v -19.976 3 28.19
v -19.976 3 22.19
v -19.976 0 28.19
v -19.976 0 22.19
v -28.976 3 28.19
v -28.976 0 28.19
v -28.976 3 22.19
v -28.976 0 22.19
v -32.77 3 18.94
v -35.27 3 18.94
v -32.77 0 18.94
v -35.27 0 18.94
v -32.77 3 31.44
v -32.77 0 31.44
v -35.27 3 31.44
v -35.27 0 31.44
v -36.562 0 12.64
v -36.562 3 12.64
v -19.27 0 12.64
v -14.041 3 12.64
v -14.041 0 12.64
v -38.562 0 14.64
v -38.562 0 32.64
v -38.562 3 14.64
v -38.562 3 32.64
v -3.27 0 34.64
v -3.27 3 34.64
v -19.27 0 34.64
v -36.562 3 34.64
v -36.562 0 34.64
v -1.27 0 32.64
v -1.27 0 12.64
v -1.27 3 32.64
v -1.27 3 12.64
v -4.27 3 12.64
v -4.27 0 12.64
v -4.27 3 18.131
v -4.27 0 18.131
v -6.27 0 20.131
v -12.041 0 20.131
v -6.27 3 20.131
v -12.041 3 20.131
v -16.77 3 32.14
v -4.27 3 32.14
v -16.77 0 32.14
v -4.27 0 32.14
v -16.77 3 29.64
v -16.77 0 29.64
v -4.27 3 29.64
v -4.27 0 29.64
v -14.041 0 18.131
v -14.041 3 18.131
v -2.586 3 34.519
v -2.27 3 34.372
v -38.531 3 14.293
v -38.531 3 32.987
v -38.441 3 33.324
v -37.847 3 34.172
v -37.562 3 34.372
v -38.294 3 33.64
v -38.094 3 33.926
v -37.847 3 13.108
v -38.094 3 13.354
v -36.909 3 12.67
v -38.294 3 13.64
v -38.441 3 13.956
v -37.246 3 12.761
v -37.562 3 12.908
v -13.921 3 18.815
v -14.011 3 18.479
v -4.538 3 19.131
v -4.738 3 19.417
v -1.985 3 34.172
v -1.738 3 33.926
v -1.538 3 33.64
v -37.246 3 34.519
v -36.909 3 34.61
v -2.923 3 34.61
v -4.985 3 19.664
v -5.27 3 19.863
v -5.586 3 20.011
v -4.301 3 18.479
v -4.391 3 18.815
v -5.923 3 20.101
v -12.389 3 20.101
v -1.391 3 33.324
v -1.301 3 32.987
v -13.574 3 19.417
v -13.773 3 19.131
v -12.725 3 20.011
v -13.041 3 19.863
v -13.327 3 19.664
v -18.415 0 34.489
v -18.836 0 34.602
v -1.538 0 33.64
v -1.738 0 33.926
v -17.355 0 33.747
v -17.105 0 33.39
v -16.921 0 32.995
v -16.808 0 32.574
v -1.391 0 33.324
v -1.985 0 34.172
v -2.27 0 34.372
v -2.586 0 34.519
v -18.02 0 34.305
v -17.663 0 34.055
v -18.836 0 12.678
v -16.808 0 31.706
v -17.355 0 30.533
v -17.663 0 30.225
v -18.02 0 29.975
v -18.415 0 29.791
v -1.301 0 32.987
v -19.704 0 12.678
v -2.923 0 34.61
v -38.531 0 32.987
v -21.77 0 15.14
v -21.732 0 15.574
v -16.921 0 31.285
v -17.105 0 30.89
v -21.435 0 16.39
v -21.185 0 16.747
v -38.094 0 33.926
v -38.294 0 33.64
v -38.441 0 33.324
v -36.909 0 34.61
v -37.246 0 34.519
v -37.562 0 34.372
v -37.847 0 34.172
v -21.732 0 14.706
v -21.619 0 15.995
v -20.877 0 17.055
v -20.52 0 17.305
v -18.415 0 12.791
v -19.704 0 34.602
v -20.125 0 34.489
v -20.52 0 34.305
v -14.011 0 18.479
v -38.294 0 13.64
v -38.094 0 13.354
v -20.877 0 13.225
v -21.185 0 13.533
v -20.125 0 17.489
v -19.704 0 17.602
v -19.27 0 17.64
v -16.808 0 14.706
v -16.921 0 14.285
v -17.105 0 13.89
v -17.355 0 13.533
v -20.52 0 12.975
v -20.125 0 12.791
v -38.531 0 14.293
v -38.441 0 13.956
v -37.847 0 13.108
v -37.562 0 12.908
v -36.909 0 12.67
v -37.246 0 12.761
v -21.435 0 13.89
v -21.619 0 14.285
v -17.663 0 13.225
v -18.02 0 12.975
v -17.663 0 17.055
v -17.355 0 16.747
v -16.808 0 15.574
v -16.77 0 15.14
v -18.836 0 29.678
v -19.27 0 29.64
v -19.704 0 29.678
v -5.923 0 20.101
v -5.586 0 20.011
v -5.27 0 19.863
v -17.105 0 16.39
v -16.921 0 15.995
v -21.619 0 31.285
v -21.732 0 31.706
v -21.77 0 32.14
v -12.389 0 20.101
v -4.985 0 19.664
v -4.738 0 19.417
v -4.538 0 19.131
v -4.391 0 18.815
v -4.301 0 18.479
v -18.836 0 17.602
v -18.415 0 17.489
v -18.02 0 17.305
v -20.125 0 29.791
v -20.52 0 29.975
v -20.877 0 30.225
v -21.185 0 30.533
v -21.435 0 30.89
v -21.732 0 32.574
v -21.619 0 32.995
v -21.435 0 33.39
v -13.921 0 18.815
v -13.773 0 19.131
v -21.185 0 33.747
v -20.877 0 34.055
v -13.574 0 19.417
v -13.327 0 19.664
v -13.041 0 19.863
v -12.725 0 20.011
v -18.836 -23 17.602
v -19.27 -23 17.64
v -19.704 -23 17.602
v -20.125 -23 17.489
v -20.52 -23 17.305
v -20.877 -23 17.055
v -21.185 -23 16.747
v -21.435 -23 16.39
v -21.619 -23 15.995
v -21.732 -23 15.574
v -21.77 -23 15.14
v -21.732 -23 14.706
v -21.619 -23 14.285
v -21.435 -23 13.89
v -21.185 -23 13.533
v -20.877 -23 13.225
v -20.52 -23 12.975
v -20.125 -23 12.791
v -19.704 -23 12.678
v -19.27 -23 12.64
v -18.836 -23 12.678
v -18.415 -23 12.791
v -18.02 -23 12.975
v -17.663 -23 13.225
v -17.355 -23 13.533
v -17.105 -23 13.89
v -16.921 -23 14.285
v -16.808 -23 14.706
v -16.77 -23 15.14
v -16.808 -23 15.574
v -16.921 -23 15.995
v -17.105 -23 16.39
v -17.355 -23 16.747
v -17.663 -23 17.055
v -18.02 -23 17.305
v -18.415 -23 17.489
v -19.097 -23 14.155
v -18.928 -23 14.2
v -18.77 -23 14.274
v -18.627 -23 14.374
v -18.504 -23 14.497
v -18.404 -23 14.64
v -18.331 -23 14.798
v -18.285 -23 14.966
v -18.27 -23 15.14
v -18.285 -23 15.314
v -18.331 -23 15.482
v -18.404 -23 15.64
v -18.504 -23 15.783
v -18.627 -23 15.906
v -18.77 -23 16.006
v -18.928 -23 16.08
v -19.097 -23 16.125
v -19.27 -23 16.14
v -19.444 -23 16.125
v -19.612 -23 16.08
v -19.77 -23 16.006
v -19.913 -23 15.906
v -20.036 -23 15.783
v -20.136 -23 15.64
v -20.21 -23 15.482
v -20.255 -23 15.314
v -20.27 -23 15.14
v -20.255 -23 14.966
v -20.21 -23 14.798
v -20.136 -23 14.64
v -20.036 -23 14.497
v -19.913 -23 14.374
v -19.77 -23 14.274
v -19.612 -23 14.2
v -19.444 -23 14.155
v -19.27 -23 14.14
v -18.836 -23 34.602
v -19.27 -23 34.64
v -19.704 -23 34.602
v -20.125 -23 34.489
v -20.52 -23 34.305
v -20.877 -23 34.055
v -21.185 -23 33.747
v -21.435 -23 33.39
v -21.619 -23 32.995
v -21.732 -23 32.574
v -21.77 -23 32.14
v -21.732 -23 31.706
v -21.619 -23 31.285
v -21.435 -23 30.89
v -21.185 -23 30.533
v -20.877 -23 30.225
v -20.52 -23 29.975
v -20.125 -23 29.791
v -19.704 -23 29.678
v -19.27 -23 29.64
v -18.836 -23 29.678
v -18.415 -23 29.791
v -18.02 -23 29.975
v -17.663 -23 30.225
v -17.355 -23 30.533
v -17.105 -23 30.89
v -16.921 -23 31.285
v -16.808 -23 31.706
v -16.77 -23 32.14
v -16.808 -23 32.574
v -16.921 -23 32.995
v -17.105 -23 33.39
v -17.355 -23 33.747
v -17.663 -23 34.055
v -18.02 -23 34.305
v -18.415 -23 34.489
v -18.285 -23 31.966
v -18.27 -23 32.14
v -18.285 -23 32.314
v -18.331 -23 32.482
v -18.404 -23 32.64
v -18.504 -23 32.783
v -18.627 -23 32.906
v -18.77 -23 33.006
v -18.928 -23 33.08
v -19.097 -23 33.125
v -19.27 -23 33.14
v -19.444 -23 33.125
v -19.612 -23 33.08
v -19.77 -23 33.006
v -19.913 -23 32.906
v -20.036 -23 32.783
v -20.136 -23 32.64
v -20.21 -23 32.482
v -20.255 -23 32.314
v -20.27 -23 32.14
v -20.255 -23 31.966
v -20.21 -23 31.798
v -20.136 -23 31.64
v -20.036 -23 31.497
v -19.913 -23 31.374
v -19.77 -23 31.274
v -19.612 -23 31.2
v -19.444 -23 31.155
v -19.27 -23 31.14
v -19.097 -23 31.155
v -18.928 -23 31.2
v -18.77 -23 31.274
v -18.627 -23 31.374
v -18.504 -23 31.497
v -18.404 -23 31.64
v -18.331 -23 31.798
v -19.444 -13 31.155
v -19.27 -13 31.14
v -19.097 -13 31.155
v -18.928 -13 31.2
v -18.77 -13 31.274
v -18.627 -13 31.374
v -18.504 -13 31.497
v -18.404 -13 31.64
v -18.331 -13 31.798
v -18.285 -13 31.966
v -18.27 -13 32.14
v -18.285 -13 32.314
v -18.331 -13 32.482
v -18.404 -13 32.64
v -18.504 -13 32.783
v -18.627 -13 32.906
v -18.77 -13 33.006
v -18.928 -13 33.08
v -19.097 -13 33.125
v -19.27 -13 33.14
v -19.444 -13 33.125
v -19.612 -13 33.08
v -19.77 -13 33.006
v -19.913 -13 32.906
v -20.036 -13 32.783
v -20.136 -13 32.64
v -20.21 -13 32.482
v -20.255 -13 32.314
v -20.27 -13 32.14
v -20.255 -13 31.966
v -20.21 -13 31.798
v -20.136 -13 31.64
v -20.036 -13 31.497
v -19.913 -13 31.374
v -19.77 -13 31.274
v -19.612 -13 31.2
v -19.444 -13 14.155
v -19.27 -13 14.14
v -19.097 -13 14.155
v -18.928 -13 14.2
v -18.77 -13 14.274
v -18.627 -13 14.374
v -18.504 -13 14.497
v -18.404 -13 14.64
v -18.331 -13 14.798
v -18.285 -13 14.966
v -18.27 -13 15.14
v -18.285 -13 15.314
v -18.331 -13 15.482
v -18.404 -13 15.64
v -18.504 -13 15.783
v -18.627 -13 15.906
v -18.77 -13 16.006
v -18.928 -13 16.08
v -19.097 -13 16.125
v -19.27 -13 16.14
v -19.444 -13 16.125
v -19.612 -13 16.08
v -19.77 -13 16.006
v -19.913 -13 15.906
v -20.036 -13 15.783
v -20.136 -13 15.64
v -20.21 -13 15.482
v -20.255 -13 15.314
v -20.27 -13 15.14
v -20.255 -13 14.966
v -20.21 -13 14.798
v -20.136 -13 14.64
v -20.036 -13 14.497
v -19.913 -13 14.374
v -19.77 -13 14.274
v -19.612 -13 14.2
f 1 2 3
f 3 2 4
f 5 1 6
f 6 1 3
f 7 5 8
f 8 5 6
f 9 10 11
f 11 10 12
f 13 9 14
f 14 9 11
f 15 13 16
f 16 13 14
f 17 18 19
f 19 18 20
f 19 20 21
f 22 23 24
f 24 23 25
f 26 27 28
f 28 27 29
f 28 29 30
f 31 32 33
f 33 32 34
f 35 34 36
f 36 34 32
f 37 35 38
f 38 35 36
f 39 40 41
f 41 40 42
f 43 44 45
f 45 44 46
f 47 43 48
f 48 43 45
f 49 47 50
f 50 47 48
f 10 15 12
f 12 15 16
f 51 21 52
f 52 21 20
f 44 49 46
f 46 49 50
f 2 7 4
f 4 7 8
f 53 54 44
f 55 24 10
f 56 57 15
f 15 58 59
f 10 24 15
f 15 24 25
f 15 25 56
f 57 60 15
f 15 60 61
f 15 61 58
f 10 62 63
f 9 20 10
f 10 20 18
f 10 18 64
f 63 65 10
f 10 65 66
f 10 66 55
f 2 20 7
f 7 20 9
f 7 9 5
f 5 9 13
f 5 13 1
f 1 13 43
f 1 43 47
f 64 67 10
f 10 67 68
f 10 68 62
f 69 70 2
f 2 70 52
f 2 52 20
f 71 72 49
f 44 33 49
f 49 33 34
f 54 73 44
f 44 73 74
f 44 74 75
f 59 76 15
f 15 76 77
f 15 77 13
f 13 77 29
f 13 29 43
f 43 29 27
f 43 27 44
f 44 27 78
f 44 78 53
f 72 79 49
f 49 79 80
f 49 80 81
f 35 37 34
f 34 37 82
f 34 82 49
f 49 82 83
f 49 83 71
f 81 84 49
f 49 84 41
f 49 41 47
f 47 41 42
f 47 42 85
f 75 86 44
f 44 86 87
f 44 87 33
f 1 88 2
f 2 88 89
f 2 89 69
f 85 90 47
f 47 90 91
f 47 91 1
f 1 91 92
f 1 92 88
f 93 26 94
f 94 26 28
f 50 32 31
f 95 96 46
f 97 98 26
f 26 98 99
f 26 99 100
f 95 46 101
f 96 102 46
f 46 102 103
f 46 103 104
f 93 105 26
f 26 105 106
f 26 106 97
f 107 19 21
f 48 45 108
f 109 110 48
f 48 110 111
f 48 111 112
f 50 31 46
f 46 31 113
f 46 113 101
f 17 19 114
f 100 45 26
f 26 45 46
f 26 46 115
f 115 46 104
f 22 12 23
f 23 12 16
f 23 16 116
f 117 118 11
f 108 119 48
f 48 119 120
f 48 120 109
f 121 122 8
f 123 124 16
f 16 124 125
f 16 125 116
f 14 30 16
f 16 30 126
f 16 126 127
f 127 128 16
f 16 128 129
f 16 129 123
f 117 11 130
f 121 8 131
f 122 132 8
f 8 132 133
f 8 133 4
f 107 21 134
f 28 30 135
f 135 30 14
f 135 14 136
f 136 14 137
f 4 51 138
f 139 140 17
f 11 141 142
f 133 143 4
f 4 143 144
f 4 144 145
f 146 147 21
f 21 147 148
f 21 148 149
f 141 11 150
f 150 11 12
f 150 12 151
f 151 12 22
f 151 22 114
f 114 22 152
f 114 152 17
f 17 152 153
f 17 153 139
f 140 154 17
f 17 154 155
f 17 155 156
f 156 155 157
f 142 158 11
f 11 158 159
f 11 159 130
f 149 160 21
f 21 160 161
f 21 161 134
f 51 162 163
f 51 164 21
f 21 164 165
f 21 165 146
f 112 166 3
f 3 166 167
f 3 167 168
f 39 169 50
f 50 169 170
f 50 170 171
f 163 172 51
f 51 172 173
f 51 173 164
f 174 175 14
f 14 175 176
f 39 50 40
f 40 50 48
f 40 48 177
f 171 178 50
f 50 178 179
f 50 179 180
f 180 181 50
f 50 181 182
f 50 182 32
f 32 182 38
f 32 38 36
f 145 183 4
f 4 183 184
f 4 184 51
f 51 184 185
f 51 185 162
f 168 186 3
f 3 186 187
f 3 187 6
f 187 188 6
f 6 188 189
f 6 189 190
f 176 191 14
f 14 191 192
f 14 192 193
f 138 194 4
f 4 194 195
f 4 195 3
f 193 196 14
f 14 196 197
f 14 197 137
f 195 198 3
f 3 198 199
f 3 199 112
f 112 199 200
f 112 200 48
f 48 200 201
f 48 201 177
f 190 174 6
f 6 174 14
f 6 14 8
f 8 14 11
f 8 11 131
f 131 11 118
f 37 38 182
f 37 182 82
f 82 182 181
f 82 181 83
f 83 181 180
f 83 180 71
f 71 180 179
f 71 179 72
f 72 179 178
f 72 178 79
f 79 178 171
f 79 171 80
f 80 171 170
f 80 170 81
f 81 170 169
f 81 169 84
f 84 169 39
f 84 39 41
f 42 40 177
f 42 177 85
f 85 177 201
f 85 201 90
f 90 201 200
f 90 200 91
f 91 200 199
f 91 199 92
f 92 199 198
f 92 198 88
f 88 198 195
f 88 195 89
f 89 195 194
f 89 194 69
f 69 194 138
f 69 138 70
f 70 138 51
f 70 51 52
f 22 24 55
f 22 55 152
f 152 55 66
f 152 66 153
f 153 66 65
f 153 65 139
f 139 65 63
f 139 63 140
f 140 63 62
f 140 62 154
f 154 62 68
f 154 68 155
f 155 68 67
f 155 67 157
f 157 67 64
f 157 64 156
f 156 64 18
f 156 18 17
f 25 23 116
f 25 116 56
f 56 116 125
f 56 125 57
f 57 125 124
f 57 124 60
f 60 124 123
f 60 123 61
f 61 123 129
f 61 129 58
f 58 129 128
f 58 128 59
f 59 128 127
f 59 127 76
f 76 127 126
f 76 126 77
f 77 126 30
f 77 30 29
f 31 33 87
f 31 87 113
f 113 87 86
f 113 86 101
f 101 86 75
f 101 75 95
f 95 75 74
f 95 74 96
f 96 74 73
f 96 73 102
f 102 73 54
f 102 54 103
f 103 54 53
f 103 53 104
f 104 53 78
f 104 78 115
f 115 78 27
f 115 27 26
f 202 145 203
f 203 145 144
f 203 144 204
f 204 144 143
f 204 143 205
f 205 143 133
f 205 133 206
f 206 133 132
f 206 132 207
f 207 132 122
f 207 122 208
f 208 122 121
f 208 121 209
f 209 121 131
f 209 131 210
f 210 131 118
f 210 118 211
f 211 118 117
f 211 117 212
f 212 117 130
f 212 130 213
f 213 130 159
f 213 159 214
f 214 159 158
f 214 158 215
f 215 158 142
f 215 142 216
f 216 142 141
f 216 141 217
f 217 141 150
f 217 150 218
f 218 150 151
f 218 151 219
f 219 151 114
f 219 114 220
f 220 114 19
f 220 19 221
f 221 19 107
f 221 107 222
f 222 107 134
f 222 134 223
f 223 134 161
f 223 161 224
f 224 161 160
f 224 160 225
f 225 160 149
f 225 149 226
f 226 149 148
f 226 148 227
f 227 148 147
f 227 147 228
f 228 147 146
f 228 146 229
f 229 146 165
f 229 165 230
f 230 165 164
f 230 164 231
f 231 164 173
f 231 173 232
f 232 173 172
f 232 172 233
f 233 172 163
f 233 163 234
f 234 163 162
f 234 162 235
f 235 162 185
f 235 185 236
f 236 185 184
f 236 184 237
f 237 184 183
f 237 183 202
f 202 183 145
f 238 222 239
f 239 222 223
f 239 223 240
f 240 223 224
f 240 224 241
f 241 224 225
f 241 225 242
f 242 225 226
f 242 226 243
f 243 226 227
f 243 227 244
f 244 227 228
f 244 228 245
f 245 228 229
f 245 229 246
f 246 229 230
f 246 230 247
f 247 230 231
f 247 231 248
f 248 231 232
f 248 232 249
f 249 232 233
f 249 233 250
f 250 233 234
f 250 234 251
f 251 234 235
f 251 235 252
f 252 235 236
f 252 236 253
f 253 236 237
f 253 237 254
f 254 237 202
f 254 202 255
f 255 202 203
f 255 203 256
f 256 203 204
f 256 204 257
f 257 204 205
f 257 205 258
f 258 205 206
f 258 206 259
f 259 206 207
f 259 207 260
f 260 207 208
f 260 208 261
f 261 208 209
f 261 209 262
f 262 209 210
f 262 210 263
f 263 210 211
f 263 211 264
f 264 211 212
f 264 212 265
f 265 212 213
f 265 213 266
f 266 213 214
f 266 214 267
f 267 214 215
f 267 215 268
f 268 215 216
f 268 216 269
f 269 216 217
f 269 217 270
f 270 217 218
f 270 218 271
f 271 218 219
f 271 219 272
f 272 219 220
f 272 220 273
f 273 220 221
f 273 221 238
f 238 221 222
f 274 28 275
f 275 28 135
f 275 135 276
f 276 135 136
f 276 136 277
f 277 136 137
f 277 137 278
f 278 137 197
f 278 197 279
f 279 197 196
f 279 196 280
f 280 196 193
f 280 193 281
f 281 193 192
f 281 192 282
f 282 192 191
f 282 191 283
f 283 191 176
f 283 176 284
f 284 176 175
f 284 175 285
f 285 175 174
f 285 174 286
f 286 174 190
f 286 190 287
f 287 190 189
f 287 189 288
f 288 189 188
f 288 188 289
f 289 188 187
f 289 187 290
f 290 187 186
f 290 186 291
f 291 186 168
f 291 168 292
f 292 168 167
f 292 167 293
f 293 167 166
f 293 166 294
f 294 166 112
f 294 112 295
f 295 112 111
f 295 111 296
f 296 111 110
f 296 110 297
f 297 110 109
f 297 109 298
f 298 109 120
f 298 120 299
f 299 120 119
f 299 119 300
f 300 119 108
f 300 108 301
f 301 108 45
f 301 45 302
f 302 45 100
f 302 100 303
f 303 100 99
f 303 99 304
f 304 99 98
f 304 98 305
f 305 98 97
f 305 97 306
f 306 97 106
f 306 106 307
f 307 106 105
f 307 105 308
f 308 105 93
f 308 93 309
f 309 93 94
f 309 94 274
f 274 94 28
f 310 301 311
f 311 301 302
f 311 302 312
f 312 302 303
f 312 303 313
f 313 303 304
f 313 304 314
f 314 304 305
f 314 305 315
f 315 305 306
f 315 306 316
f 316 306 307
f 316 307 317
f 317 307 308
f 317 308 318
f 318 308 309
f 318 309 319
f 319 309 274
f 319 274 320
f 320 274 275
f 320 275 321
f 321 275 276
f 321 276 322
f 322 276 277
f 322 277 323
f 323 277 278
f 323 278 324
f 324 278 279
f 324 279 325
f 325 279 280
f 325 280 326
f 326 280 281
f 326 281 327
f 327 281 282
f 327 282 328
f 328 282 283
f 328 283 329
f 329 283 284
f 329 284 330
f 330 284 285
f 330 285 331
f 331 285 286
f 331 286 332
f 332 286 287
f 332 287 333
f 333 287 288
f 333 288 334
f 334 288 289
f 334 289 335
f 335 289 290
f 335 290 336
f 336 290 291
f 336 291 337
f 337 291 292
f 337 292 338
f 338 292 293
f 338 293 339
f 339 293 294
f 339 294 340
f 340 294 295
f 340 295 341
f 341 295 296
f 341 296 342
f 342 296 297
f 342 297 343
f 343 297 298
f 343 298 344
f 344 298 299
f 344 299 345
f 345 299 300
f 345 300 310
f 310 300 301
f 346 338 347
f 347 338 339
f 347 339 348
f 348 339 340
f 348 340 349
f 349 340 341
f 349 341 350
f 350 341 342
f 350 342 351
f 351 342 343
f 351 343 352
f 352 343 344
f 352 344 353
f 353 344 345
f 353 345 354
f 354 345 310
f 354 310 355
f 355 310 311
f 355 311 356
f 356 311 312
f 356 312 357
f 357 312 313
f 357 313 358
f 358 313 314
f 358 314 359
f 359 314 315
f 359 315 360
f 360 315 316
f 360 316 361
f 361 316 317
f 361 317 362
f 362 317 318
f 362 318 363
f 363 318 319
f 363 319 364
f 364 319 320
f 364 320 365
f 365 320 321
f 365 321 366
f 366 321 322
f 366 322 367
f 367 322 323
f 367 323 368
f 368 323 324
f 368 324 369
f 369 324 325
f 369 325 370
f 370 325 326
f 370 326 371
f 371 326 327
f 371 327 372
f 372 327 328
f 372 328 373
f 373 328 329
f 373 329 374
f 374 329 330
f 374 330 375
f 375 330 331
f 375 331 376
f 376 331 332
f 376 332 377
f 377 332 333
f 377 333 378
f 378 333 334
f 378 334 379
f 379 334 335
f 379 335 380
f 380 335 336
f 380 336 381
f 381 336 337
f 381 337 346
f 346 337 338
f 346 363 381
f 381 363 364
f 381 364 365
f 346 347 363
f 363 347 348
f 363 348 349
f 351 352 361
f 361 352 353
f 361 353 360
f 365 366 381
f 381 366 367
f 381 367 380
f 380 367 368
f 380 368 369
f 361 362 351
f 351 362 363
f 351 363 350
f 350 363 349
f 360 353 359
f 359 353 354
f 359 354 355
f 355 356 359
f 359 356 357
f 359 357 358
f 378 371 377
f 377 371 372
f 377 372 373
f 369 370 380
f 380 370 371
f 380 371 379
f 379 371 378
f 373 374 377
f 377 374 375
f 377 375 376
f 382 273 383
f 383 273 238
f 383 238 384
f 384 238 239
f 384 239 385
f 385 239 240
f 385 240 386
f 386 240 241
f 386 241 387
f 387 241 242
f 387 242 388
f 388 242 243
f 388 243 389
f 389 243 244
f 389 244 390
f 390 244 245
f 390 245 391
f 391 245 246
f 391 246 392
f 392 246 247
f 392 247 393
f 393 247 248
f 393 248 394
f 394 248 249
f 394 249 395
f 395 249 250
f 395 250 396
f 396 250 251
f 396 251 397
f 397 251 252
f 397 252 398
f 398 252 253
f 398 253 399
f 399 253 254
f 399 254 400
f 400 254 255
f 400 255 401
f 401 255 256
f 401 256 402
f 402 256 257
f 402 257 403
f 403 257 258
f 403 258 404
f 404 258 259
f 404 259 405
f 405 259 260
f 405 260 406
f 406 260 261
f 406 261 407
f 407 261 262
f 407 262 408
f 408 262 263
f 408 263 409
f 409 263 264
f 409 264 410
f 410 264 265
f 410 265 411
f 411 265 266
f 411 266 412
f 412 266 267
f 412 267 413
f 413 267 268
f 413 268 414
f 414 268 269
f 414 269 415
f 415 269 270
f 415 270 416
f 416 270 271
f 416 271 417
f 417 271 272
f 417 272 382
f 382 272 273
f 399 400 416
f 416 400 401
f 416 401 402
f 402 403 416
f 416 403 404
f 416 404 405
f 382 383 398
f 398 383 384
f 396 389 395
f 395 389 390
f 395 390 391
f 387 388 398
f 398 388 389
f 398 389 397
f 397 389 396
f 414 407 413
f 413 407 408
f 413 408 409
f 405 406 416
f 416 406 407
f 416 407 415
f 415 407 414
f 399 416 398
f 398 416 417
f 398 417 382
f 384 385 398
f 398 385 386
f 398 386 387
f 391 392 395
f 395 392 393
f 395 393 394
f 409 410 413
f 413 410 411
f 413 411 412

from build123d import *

# Parameters (mm, degrees)
SKETCH1_W           = 12.5
SKETCH1_H           = 2.5
SKETCH1_W_2         = 2.5
SKETCH1_H_2         = 12.5
SKETCH1_W_3         = 9
SKETCH1_H_3         = 6
BOSS_EXTRUDE1_DEPTH = 3
FILLET1_R           = 2
SKETCH1_6_R         = 2.5
BOSS_EXTRUDE4_DEPTH = 23
SKETCH3_R           = 1
CUT_EXTRUDE1_DEPTH  = 10


with BuildPart() as part:
    # Sketch1 → Boss-Extrude1 (new body)
    with BuildSketch(Plane(origin=(0, 0, 0), x_dir=(1, 0, 0), z_dir=(0, 1, 0))):
        Polygon((-38.561763486, -34.640037485), (-1.270220731, -34.640037485), (-1.270220731, -12.640037485), (-4.270220731, -12.640037485), (-4.270220731, -20.13144272), (-14.041444449, -20.13144272), (-14.041444449, -12.640037485), (-38.561763486, -12.640037485), align=None)
        with Locations((-10.520220731, -30.890037485)):
            Rectangle(SKETCH1_W, SKETCH1_H, mode=Mode.SUBTRACT)
        with Locations((-34.020220731, -25.190037485)):
            Rectangle(SKETCH1_W_2, SKETCH1_H_2, mode=Mode.SUBTRACT)
        with Locations((-24.475907507, -25.190037485)):
            Rectangle(SKETCH1_W_3, SKETCH1_H_3, mode=Mode.SUBTRACT)
    extrude(amount=BOSS_EXTRUDE1_DEPTH)

    # Fillet1
    fillet1_edges = [part.edges().sort_by_distance(p)[0] for p in [
        (-38.561763486, 1.5, 12.640037485),
        (-38.561763486, 1.5, 34.640037485),
        (-1.270220731, 1.5, 34.640037485),
        (-14.041444449, 1.5, 20.13144272),
        (-4.270220731, 1.5, 20.13144272),
    ]]
    fillet(fillet1_edges, radius=FILLET1_R)

    # Sketch1<6> → Boss-Extrude4 (add)
    with BuildSketch(Plane(origin=(0, 0, 0), x_dir=(1, 0, 0), z_dir=(0, 1, 0))):
        with Locations((-19.270220731, -15.140037485)):
            Circle(SKETCH1_6_R)
        with Locations((-19.270220731, -32.140037485)):
            Circle(SKETCH1_6_R)
    extrude(amount=-BOSS_EXTRUDE4_DEPTH)

    # Sketch3 → Cut-Extrude1 (cut)
    with BuildSketch(Plane(origin=(0, -23, 0), x_dir=(-1, 0, 0), z_dir=(0, -1, 0))):
        with Locations((19.270220731, -32.140037485)):
            Circle(SKETCH3_R)
        with Locations((19.270220731, -15.140037485)):
            Circle(SKETCH3_R)
    extrude(amount=-CUT_EXTRUDE1_DEPTH, mode=Mode.SUBTRACT)


solid = part.part
